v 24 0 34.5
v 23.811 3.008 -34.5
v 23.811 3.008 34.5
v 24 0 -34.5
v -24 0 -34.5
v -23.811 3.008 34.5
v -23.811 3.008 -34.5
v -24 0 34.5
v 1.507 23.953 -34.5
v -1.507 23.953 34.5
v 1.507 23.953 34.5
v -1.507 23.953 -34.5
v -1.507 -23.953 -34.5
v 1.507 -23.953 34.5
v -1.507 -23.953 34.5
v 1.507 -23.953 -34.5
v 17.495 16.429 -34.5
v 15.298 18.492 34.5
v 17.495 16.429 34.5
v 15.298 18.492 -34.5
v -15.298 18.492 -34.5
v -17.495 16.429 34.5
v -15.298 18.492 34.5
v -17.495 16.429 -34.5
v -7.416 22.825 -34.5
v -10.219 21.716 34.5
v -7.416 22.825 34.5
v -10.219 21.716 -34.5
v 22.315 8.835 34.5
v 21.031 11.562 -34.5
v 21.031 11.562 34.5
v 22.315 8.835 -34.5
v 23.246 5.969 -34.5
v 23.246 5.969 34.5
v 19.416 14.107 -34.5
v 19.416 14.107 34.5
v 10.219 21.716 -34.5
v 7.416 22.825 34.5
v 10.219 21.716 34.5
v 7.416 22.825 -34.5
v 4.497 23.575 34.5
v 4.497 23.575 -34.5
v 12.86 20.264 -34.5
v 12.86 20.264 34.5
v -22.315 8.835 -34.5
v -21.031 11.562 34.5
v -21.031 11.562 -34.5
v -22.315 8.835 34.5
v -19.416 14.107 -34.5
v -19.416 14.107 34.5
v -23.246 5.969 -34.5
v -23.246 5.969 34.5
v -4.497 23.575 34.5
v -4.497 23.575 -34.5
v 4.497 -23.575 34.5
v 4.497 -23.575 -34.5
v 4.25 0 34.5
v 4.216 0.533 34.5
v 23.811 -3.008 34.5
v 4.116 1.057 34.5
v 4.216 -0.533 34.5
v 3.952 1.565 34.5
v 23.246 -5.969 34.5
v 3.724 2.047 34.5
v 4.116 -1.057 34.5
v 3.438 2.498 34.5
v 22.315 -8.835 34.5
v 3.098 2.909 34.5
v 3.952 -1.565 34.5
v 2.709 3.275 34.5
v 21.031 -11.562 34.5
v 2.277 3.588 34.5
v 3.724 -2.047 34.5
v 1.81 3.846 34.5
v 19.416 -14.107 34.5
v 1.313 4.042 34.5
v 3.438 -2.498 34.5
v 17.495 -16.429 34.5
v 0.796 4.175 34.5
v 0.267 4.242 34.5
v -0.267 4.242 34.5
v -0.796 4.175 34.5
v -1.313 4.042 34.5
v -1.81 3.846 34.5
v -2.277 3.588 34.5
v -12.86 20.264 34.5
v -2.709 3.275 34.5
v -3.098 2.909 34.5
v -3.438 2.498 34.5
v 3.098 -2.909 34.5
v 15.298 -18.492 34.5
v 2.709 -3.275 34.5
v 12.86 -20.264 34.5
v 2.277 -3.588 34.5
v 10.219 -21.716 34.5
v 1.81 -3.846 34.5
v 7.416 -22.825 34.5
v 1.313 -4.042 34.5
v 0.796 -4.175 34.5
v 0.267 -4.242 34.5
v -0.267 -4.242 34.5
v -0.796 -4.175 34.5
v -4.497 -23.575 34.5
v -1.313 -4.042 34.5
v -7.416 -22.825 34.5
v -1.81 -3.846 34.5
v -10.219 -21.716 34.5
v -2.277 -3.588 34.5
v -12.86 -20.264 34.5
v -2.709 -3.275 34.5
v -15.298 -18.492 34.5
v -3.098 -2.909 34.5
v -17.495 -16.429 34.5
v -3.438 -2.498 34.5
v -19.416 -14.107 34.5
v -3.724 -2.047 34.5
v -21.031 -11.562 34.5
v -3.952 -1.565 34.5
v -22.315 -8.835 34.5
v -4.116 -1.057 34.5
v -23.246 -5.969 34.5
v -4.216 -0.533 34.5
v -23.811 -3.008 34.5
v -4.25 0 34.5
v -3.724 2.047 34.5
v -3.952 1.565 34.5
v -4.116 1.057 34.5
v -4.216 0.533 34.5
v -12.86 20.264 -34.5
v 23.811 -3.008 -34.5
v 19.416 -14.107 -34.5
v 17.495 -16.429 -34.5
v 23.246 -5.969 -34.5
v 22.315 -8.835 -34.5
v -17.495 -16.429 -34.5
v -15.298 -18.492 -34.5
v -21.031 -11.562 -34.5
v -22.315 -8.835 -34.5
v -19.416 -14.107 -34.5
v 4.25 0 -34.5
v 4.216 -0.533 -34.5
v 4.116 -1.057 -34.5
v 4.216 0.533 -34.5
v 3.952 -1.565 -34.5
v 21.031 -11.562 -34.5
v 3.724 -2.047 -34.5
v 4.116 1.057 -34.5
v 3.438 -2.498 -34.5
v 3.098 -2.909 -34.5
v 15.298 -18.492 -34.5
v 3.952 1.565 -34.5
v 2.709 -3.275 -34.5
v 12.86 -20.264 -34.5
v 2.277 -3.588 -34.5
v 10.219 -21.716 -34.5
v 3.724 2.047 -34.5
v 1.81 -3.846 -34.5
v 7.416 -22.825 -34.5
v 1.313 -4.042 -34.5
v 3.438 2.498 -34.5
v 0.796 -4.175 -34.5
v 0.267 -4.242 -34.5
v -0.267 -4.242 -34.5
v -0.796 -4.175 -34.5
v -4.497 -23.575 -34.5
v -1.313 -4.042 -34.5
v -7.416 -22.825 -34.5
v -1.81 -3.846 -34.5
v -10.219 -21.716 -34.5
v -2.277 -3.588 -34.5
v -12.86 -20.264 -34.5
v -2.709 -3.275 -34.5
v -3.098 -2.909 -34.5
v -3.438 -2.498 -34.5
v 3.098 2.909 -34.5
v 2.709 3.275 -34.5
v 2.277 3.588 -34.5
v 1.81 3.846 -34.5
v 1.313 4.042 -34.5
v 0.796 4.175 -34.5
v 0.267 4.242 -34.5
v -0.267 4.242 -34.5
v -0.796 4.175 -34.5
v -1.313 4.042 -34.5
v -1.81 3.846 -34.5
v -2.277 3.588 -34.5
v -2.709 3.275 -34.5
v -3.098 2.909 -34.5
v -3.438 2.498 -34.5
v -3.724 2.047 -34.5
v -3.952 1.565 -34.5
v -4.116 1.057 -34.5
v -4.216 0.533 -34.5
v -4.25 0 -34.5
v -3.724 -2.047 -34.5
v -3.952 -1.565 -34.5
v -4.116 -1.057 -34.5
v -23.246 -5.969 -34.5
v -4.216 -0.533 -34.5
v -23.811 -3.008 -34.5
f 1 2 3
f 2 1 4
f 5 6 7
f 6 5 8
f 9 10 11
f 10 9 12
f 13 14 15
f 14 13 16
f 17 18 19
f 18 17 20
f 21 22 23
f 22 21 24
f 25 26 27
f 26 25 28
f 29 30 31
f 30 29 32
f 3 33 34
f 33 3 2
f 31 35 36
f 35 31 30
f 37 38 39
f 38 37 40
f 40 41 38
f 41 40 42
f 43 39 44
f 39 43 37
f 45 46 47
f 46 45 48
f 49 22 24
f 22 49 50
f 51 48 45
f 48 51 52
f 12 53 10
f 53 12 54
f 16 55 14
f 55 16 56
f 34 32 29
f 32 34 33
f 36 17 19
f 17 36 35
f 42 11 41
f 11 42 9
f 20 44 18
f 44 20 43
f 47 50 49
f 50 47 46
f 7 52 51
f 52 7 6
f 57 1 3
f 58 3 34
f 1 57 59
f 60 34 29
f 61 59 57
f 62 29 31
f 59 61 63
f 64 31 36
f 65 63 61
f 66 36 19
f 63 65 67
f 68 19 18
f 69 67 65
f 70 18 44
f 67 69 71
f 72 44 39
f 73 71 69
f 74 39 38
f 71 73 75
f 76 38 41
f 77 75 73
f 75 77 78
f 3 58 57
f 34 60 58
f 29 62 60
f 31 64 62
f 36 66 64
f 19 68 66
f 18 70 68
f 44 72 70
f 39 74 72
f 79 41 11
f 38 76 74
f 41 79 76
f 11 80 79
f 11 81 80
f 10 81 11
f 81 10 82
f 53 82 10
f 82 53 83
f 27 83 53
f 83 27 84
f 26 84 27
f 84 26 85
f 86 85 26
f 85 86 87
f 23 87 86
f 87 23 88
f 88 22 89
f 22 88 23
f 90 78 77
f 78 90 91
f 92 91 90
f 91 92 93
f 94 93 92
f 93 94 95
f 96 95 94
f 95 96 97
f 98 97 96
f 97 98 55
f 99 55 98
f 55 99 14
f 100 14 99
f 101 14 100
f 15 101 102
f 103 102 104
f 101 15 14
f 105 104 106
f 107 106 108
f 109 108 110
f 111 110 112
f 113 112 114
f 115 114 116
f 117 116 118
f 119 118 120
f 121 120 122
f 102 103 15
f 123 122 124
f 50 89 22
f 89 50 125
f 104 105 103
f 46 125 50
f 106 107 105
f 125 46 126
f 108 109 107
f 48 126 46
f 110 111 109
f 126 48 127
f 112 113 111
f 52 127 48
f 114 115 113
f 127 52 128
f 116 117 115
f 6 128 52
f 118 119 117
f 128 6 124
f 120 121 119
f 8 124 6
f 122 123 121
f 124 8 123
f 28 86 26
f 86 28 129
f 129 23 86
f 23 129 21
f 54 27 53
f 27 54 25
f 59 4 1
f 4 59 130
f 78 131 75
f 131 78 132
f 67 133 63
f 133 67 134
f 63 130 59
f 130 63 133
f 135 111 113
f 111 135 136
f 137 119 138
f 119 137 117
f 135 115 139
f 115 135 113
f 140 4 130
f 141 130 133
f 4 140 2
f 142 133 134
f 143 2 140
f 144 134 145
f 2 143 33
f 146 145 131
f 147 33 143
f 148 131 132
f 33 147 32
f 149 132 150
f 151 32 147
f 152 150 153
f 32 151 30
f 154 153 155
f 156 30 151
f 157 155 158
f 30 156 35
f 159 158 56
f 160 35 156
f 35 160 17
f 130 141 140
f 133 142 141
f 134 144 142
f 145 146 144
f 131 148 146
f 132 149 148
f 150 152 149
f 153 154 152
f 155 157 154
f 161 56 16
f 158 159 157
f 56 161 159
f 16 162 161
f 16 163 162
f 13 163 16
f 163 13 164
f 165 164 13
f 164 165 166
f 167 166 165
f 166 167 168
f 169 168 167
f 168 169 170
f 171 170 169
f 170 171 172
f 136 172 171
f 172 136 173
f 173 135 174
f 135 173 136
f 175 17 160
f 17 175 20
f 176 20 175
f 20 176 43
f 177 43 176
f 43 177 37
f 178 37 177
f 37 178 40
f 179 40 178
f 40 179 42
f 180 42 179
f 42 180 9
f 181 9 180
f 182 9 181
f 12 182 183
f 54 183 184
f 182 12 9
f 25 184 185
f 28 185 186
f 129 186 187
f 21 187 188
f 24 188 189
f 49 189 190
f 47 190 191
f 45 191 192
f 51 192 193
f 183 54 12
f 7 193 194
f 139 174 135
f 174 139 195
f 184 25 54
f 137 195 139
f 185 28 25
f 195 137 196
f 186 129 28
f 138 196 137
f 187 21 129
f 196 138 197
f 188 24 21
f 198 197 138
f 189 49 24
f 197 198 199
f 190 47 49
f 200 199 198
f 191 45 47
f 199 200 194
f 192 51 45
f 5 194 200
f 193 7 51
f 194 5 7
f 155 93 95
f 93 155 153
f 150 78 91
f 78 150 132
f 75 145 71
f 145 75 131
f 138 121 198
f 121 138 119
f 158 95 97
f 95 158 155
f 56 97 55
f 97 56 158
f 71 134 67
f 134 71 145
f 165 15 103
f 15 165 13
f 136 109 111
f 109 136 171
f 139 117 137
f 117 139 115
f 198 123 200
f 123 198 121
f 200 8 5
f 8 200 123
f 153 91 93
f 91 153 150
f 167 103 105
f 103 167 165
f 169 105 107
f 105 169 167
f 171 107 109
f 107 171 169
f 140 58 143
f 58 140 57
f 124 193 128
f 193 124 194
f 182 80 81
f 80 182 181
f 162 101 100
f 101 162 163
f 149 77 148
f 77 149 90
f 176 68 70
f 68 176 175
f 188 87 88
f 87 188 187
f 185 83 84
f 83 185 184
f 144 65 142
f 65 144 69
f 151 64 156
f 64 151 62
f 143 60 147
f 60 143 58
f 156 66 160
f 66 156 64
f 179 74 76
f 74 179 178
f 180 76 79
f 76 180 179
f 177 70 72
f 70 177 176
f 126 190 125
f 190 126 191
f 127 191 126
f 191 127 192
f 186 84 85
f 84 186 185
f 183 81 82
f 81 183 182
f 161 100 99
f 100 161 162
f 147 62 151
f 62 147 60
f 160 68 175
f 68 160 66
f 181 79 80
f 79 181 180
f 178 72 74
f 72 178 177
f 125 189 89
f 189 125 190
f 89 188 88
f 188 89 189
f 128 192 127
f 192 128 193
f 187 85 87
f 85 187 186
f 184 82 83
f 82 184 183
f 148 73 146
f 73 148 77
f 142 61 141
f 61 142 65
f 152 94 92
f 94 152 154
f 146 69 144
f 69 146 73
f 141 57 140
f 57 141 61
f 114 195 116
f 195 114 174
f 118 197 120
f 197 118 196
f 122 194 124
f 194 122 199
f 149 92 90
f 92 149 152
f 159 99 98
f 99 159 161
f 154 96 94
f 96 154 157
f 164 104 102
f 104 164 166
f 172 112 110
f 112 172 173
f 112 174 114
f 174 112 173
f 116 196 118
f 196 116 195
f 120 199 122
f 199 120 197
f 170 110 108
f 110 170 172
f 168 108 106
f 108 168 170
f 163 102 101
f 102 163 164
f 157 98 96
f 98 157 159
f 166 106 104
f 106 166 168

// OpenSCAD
$fn = 50;


difference() {
	union() {
		translate(v = [0, 0, -34.5000000000]) {
			cylinder(h = 69, r = 24.0000000000);
		}
	}
	union() {
		translate(v = [0, 0, -100.0000000000]) {
			cylinder(h = 200, r = 4.2500000000);
		}
	}
}
